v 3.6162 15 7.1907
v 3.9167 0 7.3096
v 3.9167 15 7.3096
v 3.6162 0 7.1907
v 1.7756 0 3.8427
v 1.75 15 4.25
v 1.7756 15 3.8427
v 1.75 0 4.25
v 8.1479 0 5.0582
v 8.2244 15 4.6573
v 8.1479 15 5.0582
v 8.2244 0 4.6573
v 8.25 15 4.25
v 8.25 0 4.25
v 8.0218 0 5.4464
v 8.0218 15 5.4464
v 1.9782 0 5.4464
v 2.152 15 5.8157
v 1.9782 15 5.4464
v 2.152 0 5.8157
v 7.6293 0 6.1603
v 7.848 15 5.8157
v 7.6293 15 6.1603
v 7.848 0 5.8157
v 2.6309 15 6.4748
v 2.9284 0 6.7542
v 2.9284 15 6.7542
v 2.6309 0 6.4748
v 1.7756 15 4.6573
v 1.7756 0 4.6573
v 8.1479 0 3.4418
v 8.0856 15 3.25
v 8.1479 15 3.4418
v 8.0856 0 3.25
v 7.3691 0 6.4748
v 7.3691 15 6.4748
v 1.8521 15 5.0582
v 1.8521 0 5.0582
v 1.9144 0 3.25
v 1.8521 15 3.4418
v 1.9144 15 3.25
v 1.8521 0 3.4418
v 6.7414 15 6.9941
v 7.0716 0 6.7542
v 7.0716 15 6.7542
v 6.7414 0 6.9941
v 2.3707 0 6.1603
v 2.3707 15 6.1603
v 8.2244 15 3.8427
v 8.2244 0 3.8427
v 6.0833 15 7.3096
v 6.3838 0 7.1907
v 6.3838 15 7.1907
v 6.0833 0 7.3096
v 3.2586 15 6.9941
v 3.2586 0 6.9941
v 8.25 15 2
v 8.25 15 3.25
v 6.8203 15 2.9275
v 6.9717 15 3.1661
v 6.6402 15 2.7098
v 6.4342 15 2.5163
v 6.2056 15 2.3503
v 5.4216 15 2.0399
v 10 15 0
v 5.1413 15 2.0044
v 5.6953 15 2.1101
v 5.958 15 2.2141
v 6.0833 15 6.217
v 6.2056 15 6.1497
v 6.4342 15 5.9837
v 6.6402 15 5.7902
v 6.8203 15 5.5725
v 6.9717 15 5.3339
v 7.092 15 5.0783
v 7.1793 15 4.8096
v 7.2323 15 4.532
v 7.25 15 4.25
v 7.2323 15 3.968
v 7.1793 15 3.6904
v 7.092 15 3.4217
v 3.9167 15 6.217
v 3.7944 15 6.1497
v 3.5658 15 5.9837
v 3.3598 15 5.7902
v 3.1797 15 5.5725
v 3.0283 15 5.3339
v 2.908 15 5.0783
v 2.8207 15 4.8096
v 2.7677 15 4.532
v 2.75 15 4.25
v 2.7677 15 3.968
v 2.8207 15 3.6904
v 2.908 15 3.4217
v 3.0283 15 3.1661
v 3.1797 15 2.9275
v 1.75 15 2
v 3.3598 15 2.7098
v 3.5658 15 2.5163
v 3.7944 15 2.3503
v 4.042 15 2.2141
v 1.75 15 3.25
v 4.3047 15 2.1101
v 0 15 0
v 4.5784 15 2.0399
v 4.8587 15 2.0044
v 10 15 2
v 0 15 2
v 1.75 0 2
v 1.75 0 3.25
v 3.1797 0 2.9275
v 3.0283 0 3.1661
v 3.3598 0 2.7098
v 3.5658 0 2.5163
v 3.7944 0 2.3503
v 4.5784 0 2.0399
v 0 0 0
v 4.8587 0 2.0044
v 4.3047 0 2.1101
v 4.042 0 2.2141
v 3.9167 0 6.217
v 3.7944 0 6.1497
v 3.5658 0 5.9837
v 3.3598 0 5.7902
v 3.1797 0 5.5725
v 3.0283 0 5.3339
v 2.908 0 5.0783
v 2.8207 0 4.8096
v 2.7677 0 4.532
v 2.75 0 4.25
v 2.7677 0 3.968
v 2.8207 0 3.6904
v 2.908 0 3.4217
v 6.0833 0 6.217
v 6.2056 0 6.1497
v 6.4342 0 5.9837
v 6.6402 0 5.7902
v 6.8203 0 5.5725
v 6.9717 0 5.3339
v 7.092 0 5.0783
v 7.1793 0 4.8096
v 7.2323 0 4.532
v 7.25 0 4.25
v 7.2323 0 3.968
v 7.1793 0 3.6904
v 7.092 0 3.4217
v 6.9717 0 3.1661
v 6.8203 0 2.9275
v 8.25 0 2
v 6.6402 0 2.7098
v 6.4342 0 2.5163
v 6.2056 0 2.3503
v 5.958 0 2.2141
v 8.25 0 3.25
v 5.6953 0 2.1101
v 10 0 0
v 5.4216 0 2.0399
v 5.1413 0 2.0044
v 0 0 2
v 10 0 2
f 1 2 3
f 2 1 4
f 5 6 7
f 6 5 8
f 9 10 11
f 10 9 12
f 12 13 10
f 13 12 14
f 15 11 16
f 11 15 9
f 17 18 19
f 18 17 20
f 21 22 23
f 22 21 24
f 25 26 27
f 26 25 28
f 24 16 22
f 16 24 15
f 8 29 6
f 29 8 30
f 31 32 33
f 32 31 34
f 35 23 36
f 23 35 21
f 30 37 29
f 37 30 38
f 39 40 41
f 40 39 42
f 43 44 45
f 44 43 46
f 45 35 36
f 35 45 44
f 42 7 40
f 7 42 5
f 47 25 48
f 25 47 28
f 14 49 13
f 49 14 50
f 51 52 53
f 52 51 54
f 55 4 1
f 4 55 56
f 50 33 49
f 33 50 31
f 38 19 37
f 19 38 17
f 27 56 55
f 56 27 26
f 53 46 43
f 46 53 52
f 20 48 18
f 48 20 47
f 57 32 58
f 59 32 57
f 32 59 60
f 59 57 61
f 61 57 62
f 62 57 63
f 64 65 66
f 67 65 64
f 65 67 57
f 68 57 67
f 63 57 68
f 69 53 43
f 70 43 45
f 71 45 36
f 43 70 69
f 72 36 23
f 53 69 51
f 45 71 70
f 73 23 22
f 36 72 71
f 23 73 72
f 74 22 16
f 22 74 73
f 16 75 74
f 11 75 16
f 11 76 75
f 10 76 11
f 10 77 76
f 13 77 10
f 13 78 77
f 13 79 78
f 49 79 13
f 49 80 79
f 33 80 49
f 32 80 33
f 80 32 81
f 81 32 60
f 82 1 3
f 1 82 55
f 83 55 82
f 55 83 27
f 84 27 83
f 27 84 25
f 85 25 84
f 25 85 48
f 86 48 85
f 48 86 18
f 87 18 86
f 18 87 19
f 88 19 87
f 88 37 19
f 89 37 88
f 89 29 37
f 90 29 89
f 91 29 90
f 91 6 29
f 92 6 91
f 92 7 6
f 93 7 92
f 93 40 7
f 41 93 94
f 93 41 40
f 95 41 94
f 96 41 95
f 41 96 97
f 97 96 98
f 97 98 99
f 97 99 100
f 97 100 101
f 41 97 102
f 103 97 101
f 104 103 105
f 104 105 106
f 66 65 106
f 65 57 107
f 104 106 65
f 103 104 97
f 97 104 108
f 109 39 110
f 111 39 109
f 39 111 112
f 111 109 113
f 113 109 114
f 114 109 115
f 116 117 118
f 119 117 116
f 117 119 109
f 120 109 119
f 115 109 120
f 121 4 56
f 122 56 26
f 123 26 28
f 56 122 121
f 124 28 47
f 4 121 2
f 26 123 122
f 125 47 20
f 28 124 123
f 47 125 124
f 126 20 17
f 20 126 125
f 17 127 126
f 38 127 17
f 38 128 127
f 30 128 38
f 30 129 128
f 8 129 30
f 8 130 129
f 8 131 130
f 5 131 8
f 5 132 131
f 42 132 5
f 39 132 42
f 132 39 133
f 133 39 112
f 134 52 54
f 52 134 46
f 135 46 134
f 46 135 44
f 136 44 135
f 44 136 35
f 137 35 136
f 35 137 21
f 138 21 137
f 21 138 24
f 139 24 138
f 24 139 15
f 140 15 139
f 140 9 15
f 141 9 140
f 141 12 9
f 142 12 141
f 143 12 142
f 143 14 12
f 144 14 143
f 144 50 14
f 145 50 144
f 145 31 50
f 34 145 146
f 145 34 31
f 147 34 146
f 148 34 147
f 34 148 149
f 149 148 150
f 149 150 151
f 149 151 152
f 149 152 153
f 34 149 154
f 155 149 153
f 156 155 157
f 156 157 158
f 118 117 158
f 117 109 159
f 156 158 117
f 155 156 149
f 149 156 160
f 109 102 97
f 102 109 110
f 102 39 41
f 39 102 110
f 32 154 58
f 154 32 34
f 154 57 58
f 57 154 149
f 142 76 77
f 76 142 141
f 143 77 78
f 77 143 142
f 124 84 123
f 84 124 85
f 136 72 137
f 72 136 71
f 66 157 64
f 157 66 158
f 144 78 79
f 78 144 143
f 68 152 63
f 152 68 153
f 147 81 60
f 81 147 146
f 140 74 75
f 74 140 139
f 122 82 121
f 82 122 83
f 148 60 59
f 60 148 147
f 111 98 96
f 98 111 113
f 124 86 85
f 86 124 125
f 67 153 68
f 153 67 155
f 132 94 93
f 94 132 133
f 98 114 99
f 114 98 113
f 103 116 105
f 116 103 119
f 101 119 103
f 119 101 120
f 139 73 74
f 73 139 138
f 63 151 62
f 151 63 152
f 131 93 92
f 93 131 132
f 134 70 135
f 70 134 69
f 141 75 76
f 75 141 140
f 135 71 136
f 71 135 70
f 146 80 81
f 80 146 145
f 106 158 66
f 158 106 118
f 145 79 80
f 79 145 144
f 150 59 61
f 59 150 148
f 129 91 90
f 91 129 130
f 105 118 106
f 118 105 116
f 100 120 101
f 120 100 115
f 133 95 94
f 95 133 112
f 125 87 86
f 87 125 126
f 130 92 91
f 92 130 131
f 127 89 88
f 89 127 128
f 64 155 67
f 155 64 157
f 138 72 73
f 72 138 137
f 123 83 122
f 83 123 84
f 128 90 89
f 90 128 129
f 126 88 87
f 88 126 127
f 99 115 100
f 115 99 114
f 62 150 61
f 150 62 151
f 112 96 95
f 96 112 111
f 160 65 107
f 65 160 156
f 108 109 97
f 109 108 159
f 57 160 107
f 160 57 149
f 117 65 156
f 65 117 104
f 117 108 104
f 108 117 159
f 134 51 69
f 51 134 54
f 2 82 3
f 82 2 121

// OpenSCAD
WIRE_DIA = 4.5;
LENGTH = 15;
WIDTH = 10;

$fn = 50;



difference()
{
	union()
	{
		cube([WIDTH, LENGTH, 2]);

		translate([WIDTH/2, LENGTH, (WIRE_DIA+1)/2+1.5])rotate([90,0,0])difference()
		{
			union()
			{
				cylinder(LENGTH, d=WIRE_DIA+2, center = false);
				translate([(WIRE_DIA+2)/2,-1,0])rotate([90,-90,0])cube([LENGTH, WIRE_DIA+2, 2]);
			}
			cylinder(LENGTH, d=WIRE_DIA, center = false);
			
		}
	}
	TEMP = (WIRE_DIA+2)/3;
	translate([WIDTH/2-TEMP/2,0,WIRE_DIA+1])cube([TEMP, LENGTH, 2]);
}
